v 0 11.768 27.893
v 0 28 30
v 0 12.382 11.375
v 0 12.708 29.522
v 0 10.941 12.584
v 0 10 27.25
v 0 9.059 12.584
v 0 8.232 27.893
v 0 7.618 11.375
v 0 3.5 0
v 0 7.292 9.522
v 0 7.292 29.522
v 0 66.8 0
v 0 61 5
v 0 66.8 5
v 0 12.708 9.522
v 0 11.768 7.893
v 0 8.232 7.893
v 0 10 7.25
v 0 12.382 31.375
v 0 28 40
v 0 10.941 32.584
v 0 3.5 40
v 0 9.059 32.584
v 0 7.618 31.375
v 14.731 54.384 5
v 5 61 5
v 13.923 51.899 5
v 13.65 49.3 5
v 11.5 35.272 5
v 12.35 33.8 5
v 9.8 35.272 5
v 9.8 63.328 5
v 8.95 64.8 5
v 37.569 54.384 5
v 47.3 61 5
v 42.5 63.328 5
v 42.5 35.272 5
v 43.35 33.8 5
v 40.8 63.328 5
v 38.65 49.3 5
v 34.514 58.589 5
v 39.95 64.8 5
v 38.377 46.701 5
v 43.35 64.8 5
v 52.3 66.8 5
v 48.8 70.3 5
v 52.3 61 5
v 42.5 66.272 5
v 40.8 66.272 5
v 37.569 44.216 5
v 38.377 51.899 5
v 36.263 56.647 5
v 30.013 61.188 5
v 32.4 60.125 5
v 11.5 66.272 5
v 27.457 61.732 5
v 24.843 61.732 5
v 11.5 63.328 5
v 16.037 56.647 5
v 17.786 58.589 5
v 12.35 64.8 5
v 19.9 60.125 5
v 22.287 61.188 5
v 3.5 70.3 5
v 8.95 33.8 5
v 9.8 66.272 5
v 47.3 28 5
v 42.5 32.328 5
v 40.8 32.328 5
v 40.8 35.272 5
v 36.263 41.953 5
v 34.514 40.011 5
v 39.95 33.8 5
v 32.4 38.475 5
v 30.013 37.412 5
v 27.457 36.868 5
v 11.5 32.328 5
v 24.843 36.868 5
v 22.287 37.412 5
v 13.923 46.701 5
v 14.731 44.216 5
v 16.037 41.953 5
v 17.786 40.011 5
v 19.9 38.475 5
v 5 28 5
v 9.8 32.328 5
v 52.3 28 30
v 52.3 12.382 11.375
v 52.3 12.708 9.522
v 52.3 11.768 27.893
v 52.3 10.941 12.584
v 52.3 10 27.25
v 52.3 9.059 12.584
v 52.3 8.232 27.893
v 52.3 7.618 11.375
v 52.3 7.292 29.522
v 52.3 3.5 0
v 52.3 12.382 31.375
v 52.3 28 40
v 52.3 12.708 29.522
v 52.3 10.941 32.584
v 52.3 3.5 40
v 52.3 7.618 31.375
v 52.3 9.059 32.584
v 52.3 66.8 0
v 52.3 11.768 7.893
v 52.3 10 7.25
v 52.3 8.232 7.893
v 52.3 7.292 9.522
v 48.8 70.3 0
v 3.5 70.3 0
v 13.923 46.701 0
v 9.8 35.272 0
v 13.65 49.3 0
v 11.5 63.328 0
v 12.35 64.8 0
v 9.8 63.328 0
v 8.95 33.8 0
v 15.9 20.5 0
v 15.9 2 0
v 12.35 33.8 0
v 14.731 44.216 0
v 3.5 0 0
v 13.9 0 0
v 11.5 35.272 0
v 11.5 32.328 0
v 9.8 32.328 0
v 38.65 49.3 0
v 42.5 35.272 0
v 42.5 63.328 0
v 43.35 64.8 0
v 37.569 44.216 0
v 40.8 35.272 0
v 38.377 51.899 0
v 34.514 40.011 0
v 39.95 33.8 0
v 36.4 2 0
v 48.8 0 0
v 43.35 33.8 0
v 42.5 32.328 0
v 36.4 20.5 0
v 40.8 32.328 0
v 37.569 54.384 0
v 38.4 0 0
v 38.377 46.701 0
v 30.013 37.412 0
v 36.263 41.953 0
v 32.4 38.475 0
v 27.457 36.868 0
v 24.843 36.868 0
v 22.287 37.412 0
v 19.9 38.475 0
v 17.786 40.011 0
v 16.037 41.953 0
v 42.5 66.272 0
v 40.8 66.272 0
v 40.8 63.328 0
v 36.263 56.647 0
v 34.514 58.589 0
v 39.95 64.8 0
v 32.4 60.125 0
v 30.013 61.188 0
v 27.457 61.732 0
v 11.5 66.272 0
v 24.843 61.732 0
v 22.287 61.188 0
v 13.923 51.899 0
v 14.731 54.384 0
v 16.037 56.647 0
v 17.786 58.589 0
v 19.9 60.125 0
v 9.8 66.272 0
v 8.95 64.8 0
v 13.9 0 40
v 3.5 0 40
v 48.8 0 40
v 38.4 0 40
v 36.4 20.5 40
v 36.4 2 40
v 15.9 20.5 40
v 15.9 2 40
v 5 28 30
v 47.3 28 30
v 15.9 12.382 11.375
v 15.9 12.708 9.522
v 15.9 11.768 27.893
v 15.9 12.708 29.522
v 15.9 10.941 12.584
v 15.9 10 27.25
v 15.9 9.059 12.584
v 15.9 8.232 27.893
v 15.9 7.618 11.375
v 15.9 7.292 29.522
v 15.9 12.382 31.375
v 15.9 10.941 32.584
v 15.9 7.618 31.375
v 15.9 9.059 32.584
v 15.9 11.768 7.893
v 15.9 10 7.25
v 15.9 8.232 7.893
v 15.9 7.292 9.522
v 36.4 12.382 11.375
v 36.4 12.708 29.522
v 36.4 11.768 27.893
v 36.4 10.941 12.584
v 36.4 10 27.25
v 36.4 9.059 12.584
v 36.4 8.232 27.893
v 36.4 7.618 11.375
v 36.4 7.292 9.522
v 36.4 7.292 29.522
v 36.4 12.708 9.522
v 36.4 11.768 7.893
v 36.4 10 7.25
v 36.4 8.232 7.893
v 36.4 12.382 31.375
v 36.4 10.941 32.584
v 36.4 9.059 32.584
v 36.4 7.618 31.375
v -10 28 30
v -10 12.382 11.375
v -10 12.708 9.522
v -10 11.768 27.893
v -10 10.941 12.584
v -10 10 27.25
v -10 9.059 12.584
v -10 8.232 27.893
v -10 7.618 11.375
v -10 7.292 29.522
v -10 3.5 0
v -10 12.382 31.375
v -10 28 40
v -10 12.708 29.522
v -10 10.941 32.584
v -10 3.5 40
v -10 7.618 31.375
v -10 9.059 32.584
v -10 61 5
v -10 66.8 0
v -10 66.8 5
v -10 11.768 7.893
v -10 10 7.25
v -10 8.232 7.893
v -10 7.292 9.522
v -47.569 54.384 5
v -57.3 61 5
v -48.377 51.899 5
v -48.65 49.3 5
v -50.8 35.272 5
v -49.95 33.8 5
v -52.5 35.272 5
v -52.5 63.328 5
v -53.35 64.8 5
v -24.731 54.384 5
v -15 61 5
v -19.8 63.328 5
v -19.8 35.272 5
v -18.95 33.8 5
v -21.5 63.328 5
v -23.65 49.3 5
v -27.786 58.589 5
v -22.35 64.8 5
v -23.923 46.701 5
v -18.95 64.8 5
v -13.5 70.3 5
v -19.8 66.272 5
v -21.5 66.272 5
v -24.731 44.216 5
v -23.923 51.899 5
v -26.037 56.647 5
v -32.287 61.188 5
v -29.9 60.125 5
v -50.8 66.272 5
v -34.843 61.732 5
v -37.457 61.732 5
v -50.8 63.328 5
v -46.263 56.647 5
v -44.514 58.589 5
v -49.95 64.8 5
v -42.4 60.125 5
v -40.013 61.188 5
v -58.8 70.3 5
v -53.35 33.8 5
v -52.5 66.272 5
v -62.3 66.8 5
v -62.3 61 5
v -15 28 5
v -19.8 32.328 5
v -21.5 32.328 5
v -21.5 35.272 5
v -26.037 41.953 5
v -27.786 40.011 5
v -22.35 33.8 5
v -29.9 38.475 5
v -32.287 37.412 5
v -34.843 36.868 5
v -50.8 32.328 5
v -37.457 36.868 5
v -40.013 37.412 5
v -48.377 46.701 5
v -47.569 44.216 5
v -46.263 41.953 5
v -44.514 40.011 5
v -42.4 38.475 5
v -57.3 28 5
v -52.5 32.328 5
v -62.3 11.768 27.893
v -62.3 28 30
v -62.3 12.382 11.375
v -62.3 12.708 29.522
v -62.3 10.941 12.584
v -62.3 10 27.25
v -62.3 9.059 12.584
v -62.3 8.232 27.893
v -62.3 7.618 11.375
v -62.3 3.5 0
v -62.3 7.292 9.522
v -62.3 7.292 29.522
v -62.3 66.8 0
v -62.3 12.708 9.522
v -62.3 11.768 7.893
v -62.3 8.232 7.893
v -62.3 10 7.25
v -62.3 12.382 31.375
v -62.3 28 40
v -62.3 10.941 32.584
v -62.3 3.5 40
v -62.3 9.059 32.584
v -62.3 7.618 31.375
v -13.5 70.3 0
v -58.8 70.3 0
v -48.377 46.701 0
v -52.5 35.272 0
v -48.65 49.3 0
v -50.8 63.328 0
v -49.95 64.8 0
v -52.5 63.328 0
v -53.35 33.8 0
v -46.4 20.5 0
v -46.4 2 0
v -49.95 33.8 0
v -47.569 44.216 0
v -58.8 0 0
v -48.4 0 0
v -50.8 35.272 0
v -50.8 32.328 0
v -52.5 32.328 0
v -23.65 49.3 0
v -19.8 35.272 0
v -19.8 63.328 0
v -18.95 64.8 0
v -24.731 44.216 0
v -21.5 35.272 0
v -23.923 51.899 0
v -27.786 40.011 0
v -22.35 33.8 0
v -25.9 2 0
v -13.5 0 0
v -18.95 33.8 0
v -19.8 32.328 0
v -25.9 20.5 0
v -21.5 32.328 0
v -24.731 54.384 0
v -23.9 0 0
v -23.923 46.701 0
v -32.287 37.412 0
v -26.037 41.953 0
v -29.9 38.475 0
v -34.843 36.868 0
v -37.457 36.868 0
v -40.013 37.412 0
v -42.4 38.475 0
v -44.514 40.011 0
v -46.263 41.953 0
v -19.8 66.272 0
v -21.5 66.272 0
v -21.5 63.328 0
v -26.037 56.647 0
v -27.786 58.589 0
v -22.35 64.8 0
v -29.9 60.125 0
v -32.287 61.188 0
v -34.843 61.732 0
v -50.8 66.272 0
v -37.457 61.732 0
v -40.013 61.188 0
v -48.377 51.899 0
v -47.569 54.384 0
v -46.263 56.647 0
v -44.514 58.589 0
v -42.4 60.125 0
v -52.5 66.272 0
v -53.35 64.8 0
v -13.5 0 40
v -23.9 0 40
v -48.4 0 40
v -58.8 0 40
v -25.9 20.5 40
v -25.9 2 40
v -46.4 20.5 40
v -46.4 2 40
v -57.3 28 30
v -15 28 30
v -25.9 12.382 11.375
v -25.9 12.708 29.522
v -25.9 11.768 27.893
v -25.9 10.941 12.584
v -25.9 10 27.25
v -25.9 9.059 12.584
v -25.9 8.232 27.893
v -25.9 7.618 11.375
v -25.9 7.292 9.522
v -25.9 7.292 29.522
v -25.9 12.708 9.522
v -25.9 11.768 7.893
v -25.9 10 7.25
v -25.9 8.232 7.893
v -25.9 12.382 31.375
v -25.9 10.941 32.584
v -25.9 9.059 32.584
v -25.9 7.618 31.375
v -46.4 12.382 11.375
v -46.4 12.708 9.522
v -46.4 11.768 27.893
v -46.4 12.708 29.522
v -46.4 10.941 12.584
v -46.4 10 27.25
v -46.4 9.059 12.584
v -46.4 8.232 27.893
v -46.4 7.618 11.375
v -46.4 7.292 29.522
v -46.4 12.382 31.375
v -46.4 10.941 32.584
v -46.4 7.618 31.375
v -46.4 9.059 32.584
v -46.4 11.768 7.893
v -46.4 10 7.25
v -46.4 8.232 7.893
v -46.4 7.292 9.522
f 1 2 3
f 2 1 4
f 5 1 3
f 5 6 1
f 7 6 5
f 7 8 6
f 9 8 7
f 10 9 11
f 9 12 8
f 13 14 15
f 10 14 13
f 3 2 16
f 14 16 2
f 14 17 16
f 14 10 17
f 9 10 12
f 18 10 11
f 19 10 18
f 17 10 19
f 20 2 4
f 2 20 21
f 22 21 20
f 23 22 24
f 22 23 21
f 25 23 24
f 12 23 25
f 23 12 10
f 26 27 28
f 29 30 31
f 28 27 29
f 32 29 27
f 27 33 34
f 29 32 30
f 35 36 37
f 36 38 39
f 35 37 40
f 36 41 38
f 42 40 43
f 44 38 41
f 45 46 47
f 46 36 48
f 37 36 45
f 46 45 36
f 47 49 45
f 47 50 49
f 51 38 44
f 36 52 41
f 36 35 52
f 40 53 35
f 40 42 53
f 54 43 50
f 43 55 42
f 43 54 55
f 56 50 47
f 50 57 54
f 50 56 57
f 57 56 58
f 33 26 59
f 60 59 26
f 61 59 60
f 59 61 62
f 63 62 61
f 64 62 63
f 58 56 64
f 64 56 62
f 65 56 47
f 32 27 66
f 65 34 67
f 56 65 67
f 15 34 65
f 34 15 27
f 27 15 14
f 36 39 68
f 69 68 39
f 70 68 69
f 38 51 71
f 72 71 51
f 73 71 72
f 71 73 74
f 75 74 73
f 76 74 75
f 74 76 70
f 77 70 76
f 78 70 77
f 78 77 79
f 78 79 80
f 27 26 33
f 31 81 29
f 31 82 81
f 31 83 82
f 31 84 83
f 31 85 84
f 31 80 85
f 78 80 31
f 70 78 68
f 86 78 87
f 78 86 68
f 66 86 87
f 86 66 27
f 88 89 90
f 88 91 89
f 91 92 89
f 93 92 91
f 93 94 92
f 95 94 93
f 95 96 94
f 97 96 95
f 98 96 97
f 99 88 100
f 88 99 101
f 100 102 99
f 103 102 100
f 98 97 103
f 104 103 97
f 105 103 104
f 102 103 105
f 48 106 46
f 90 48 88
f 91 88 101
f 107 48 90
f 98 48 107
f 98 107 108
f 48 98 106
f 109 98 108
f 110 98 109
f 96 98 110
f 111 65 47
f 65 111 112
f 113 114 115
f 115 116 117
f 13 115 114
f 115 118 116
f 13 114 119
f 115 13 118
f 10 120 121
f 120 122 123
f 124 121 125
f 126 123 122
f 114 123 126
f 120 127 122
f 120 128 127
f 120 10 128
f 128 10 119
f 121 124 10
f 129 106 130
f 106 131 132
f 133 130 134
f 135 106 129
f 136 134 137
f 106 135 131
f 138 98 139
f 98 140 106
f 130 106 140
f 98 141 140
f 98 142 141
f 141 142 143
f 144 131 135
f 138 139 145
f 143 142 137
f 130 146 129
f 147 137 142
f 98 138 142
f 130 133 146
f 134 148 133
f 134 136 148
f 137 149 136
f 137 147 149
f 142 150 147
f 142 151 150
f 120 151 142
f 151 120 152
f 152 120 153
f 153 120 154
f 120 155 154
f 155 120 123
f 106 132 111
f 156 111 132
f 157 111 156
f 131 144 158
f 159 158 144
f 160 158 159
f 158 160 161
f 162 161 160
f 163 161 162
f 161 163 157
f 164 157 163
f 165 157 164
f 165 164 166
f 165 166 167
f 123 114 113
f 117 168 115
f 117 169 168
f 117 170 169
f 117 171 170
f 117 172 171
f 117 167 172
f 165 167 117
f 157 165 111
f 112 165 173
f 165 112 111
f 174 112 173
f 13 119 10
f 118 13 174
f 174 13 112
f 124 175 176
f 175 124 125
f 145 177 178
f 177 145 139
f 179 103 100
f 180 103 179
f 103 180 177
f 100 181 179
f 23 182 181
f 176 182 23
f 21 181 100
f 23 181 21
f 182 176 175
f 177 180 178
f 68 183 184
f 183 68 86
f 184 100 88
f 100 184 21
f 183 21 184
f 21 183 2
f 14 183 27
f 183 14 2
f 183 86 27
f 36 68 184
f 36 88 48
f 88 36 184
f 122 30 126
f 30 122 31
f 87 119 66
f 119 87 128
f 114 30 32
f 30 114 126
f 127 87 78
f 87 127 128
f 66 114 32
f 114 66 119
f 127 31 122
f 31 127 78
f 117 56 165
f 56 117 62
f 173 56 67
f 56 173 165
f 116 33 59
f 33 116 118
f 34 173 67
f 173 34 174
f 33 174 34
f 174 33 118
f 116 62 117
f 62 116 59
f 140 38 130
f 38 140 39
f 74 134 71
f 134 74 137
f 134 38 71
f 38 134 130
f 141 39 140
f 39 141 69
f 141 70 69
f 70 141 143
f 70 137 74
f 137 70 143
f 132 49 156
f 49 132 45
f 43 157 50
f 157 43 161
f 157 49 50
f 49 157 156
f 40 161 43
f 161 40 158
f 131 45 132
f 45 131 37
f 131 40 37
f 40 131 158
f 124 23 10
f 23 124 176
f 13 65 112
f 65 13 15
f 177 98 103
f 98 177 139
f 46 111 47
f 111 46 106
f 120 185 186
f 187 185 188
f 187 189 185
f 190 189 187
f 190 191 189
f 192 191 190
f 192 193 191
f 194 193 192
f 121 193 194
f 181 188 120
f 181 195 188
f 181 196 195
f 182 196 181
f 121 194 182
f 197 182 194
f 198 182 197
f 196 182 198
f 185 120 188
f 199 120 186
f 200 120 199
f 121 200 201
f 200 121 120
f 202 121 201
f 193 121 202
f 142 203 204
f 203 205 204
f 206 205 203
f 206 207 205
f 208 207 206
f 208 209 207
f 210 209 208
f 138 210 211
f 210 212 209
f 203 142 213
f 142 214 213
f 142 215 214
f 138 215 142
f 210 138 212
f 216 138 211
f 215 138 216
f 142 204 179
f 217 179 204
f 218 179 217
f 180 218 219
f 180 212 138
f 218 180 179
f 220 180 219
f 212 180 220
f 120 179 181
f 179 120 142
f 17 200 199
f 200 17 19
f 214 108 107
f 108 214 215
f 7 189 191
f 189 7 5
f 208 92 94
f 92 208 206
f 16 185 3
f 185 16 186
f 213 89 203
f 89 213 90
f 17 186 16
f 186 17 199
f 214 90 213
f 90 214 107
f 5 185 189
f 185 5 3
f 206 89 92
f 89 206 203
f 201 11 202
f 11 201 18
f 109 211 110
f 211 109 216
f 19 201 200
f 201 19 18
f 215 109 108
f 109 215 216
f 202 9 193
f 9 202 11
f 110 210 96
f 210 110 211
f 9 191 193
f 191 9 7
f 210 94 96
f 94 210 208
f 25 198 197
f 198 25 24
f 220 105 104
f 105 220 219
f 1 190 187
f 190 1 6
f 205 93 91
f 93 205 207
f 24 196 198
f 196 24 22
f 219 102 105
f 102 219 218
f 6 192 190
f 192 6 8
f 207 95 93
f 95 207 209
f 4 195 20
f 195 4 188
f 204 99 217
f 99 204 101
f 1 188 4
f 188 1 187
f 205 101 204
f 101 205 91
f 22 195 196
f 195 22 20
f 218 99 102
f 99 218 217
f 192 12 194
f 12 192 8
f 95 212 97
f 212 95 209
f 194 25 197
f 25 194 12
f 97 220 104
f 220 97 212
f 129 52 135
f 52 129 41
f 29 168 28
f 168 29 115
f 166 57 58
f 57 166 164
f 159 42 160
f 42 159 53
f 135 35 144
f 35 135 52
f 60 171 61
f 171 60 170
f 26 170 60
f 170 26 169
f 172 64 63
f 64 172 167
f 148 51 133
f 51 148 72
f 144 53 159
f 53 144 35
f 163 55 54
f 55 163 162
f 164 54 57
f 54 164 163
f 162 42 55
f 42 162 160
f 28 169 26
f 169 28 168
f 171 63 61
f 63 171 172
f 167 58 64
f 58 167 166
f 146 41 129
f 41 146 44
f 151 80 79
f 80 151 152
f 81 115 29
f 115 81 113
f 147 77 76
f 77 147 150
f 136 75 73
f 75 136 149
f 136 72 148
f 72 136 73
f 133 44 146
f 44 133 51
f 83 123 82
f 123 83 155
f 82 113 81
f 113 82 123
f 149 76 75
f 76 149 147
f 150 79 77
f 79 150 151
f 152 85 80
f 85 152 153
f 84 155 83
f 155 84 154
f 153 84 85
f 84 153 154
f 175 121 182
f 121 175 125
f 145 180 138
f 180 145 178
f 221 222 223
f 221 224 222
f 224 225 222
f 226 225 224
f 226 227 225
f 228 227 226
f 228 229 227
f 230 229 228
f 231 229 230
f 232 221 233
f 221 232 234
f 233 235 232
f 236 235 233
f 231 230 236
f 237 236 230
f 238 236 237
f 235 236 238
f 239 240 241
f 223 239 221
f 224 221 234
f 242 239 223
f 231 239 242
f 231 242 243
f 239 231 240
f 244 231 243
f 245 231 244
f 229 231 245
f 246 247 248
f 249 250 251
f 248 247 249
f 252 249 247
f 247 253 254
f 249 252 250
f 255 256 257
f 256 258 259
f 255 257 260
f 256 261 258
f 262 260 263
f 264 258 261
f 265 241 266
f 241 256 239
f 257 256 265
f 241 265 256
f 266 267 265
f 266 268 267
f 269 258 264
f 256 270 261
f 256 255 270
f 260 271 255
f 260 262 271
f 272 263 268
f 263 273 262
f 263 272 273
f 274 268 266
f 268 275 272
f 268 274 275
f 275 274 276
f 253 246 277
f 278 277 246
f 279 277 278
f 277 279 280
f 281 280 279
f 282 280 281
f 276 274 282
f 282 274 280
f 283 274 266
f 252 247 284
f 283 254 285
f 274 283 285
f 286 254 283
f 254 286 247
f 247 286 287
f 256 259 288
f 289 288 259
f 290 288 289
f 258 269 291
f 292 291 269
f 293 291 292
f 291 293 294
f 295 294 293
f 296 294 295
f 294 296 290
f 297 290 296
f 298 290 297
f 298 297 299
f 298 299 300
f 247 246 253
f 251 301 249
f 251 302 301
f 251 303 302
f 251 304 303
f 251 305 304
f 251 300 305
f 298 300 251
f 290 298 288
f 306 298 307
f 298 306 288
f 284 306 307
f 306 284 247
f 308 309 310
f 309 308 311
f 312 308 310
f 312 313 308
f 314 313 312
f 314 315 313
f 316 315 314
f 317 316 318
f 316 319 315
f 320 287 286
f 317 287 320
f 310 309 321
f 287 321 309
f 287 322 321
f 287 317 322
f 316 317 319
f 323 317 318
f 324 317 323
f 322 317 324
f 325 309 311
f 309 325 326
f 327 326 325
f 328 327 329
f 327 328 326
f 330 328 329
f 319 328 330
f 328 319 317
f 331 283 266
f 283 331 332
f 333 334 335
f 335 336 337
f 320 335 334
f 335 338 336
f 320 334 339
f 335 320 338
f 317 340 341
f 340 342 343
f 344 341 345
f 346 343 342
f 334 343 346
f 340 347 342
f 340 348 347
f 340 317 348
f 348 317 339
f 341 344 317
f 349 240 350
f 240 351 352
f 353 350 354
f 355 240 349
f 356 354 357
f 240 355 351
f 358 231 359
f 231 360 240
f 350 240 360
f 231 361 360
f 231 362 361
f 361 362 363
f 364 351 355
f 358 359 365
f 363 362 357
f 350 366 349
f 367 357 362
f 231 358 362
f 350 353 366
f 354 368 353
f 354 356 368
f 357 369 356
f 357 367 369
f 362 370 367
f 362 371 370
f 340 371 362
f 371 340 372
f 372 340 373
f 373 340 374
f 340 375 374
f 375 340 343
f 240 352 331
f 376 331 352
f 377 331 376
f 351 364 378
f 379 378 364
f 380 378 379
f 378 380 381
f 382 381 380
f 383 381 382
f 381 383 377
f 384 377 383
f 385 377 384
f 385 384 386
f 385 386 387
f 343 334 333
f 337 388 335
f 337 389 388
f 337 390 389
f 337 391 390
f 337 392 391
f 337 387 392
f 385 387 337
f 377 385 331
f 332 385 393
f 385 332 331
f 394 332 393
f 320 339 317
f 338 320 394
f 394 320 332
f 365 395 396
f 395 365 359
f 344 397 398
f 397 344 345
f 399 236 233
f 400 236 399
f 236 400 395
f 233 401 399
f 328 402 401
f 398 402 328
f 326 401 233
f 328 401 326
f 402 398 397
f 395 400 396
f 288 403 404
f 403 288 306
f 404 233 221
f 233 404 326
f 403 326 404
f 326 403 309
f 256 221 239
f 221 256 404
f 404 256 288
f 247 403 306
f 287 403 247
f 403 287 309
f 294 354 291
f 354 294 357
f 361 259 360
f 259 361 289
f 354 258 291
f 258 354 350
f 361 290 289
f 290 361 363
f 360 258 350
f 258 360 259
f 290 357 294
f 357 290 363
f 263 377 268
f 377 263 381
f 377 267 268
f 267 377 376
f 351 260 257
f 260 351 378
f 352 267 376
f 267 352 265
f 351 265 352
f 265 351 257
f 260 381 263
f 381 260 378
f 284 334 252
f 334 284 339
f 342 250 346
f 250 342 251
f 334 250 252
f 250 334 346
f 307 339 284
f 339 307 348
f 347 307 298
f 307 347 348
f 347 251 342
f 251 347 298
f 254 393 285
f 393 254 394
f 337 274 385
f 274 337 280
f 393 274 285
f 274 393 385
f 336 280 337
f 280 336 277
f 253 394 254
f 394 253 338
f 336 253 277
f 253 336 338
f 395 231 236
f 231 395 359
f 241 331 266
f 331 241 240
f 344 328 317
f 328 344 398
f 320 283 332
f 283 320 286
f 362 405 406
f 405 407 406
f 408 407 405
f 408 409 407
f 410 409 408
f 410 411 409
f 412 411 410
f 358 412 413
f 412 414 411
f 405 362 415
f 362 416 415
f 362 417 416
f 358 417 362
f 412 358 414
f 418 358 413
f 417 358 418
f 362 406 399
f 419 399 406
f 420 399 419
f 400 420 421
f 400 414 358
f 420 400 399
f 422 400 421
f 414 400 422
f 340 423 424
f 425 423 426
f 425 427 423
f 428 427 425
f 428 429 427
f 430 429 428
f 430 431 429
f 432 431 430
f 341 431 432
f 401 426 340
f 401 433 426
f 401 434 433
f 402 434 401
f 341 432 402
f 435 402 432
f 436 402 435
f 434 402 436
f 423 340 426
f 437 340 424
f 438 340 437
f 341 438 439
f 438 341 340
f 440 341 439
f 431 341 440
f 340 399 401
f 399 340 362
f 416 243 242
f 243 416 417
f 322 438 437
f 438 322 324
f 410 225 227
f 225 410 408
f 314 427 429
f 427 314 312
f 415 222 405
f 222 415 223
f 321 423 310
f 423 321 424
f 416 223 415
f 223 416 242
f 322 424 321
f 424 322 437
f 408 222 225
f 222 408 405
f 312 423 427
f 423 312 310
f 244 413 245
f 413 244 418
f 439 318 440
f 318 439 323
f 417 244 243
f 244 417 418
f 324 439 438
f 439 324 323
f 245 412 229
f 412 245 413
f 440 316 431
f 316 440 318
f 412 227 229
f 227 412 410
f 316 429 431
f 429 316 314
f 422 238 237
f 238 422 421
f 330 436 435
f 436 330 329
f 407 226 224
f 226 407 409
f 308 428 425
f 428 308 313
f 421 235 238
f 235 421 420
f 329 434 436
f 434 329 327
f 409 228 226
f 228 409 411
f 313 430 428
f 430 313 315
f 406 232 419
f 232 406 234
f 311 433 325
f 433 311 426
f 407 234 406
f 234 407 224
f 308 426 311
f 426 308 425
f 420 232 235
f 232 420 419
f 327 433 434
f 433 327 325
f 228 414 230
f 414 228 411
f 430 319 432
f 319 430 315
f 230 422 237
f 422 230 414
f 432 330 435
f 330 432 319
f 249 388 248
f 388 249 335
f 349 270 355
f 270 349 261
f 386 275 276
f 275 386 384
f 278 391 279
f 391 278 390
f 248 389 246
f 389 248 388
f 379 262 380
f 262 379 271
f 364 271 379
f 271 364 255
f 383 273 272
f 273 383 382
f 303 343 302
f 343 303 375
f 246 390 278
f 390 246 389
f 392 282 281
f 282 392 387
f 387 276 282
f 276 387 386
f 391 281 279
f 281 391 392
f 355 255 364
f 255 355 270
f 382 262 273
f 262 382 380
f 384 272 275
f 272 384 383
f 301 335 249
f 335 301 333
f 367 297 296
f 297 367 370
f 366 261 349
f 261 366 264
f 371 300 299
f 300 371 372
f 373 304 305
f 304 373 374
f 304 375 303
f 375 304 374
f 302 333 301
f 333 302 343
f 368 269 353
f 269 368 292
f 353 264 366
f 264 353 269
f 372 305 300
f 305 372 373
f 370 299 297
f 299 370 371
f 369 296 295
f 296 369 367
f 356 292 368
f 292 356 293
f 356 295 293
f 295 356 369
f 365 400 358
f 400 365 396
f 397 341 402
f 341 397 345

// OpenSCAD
/**
 * ZMotorMount.scad
 * 
 * Created by Diego Viejo
 * 
 * 11/May/2016
 * 
 */

Floor = 5;
Width = 42.3 + 5 + 5;
Wall = 8;
Length = 42.3 + Wall + 20;
Height = 40;
MotorPos = 20 + 29.3;

Nema17Holes = 31;

ZMotor();
translate([-10, 0, 0]) mirror([1, 0, 0]) 
ZMotor();


module ZMotor()
difference()
{
    union()
    {
        cube([Width, Length, Floor]);
        cube([Width, Wall+20, Height]); 
        
        translate([0, 20, 0])
        hull()
        {
            cube([5, Wall, Floor]);
            translate([0, Wall+25, 0]) cube([5, Wall, Floor]);
            translate([0, 0, 25]) cube([5, Wall, Floor]);
        }
        translate([Width-5, 20, 0])
        hull()
        {
            cube([5, Wall, Floor]);
            translate([0, Wall+25, 0]) cube([5, Wall, Floor]);
            translate([0, 0, 25]) cube([5, Wall, Floor]);
        }
    }
    
    translate([(Width-20.5)/2, -1, -1]) cube([20.5, 20.5+1, Height+2]);
    
    translate([-1, 10, 10]) rotate([0, 90, 0]) cylinder(d=5.5, h=Width+2);
    translate([-1, 10, Height-10]) rotate([0, 90, 0]) cylinder(d=5.5, h=Width+2);
    
    //Motor's holes
    for(i=[-1, 1]) for(j=[-1, 1])
        translate([(Width+i*Nema17Holes)/2, MotorPos+(j*Nema17Holes)/2, -1]) cylinder(d=3.4, h=Floor+2);
    translate([Width/2, MotorPos, -1]) cylinder(d=25, h=Floor+2);
    
    for(i=[0, 1]) for(j=[0, 1])
        translate([i*Width, j*Length, -1]) rotate(0) cylinder(d=7, h=Height+2, $fn=4);
    
    translate([(Width-20.5)/2, 0, -1]) rotate(0) cylinder(d=4, h=Height+2, $fn=4);
    translate([(Width+20.5)/2, 0, -1]) rotate(0) cylinder(d=4, h=Height+2, $fn=4);
    
}
